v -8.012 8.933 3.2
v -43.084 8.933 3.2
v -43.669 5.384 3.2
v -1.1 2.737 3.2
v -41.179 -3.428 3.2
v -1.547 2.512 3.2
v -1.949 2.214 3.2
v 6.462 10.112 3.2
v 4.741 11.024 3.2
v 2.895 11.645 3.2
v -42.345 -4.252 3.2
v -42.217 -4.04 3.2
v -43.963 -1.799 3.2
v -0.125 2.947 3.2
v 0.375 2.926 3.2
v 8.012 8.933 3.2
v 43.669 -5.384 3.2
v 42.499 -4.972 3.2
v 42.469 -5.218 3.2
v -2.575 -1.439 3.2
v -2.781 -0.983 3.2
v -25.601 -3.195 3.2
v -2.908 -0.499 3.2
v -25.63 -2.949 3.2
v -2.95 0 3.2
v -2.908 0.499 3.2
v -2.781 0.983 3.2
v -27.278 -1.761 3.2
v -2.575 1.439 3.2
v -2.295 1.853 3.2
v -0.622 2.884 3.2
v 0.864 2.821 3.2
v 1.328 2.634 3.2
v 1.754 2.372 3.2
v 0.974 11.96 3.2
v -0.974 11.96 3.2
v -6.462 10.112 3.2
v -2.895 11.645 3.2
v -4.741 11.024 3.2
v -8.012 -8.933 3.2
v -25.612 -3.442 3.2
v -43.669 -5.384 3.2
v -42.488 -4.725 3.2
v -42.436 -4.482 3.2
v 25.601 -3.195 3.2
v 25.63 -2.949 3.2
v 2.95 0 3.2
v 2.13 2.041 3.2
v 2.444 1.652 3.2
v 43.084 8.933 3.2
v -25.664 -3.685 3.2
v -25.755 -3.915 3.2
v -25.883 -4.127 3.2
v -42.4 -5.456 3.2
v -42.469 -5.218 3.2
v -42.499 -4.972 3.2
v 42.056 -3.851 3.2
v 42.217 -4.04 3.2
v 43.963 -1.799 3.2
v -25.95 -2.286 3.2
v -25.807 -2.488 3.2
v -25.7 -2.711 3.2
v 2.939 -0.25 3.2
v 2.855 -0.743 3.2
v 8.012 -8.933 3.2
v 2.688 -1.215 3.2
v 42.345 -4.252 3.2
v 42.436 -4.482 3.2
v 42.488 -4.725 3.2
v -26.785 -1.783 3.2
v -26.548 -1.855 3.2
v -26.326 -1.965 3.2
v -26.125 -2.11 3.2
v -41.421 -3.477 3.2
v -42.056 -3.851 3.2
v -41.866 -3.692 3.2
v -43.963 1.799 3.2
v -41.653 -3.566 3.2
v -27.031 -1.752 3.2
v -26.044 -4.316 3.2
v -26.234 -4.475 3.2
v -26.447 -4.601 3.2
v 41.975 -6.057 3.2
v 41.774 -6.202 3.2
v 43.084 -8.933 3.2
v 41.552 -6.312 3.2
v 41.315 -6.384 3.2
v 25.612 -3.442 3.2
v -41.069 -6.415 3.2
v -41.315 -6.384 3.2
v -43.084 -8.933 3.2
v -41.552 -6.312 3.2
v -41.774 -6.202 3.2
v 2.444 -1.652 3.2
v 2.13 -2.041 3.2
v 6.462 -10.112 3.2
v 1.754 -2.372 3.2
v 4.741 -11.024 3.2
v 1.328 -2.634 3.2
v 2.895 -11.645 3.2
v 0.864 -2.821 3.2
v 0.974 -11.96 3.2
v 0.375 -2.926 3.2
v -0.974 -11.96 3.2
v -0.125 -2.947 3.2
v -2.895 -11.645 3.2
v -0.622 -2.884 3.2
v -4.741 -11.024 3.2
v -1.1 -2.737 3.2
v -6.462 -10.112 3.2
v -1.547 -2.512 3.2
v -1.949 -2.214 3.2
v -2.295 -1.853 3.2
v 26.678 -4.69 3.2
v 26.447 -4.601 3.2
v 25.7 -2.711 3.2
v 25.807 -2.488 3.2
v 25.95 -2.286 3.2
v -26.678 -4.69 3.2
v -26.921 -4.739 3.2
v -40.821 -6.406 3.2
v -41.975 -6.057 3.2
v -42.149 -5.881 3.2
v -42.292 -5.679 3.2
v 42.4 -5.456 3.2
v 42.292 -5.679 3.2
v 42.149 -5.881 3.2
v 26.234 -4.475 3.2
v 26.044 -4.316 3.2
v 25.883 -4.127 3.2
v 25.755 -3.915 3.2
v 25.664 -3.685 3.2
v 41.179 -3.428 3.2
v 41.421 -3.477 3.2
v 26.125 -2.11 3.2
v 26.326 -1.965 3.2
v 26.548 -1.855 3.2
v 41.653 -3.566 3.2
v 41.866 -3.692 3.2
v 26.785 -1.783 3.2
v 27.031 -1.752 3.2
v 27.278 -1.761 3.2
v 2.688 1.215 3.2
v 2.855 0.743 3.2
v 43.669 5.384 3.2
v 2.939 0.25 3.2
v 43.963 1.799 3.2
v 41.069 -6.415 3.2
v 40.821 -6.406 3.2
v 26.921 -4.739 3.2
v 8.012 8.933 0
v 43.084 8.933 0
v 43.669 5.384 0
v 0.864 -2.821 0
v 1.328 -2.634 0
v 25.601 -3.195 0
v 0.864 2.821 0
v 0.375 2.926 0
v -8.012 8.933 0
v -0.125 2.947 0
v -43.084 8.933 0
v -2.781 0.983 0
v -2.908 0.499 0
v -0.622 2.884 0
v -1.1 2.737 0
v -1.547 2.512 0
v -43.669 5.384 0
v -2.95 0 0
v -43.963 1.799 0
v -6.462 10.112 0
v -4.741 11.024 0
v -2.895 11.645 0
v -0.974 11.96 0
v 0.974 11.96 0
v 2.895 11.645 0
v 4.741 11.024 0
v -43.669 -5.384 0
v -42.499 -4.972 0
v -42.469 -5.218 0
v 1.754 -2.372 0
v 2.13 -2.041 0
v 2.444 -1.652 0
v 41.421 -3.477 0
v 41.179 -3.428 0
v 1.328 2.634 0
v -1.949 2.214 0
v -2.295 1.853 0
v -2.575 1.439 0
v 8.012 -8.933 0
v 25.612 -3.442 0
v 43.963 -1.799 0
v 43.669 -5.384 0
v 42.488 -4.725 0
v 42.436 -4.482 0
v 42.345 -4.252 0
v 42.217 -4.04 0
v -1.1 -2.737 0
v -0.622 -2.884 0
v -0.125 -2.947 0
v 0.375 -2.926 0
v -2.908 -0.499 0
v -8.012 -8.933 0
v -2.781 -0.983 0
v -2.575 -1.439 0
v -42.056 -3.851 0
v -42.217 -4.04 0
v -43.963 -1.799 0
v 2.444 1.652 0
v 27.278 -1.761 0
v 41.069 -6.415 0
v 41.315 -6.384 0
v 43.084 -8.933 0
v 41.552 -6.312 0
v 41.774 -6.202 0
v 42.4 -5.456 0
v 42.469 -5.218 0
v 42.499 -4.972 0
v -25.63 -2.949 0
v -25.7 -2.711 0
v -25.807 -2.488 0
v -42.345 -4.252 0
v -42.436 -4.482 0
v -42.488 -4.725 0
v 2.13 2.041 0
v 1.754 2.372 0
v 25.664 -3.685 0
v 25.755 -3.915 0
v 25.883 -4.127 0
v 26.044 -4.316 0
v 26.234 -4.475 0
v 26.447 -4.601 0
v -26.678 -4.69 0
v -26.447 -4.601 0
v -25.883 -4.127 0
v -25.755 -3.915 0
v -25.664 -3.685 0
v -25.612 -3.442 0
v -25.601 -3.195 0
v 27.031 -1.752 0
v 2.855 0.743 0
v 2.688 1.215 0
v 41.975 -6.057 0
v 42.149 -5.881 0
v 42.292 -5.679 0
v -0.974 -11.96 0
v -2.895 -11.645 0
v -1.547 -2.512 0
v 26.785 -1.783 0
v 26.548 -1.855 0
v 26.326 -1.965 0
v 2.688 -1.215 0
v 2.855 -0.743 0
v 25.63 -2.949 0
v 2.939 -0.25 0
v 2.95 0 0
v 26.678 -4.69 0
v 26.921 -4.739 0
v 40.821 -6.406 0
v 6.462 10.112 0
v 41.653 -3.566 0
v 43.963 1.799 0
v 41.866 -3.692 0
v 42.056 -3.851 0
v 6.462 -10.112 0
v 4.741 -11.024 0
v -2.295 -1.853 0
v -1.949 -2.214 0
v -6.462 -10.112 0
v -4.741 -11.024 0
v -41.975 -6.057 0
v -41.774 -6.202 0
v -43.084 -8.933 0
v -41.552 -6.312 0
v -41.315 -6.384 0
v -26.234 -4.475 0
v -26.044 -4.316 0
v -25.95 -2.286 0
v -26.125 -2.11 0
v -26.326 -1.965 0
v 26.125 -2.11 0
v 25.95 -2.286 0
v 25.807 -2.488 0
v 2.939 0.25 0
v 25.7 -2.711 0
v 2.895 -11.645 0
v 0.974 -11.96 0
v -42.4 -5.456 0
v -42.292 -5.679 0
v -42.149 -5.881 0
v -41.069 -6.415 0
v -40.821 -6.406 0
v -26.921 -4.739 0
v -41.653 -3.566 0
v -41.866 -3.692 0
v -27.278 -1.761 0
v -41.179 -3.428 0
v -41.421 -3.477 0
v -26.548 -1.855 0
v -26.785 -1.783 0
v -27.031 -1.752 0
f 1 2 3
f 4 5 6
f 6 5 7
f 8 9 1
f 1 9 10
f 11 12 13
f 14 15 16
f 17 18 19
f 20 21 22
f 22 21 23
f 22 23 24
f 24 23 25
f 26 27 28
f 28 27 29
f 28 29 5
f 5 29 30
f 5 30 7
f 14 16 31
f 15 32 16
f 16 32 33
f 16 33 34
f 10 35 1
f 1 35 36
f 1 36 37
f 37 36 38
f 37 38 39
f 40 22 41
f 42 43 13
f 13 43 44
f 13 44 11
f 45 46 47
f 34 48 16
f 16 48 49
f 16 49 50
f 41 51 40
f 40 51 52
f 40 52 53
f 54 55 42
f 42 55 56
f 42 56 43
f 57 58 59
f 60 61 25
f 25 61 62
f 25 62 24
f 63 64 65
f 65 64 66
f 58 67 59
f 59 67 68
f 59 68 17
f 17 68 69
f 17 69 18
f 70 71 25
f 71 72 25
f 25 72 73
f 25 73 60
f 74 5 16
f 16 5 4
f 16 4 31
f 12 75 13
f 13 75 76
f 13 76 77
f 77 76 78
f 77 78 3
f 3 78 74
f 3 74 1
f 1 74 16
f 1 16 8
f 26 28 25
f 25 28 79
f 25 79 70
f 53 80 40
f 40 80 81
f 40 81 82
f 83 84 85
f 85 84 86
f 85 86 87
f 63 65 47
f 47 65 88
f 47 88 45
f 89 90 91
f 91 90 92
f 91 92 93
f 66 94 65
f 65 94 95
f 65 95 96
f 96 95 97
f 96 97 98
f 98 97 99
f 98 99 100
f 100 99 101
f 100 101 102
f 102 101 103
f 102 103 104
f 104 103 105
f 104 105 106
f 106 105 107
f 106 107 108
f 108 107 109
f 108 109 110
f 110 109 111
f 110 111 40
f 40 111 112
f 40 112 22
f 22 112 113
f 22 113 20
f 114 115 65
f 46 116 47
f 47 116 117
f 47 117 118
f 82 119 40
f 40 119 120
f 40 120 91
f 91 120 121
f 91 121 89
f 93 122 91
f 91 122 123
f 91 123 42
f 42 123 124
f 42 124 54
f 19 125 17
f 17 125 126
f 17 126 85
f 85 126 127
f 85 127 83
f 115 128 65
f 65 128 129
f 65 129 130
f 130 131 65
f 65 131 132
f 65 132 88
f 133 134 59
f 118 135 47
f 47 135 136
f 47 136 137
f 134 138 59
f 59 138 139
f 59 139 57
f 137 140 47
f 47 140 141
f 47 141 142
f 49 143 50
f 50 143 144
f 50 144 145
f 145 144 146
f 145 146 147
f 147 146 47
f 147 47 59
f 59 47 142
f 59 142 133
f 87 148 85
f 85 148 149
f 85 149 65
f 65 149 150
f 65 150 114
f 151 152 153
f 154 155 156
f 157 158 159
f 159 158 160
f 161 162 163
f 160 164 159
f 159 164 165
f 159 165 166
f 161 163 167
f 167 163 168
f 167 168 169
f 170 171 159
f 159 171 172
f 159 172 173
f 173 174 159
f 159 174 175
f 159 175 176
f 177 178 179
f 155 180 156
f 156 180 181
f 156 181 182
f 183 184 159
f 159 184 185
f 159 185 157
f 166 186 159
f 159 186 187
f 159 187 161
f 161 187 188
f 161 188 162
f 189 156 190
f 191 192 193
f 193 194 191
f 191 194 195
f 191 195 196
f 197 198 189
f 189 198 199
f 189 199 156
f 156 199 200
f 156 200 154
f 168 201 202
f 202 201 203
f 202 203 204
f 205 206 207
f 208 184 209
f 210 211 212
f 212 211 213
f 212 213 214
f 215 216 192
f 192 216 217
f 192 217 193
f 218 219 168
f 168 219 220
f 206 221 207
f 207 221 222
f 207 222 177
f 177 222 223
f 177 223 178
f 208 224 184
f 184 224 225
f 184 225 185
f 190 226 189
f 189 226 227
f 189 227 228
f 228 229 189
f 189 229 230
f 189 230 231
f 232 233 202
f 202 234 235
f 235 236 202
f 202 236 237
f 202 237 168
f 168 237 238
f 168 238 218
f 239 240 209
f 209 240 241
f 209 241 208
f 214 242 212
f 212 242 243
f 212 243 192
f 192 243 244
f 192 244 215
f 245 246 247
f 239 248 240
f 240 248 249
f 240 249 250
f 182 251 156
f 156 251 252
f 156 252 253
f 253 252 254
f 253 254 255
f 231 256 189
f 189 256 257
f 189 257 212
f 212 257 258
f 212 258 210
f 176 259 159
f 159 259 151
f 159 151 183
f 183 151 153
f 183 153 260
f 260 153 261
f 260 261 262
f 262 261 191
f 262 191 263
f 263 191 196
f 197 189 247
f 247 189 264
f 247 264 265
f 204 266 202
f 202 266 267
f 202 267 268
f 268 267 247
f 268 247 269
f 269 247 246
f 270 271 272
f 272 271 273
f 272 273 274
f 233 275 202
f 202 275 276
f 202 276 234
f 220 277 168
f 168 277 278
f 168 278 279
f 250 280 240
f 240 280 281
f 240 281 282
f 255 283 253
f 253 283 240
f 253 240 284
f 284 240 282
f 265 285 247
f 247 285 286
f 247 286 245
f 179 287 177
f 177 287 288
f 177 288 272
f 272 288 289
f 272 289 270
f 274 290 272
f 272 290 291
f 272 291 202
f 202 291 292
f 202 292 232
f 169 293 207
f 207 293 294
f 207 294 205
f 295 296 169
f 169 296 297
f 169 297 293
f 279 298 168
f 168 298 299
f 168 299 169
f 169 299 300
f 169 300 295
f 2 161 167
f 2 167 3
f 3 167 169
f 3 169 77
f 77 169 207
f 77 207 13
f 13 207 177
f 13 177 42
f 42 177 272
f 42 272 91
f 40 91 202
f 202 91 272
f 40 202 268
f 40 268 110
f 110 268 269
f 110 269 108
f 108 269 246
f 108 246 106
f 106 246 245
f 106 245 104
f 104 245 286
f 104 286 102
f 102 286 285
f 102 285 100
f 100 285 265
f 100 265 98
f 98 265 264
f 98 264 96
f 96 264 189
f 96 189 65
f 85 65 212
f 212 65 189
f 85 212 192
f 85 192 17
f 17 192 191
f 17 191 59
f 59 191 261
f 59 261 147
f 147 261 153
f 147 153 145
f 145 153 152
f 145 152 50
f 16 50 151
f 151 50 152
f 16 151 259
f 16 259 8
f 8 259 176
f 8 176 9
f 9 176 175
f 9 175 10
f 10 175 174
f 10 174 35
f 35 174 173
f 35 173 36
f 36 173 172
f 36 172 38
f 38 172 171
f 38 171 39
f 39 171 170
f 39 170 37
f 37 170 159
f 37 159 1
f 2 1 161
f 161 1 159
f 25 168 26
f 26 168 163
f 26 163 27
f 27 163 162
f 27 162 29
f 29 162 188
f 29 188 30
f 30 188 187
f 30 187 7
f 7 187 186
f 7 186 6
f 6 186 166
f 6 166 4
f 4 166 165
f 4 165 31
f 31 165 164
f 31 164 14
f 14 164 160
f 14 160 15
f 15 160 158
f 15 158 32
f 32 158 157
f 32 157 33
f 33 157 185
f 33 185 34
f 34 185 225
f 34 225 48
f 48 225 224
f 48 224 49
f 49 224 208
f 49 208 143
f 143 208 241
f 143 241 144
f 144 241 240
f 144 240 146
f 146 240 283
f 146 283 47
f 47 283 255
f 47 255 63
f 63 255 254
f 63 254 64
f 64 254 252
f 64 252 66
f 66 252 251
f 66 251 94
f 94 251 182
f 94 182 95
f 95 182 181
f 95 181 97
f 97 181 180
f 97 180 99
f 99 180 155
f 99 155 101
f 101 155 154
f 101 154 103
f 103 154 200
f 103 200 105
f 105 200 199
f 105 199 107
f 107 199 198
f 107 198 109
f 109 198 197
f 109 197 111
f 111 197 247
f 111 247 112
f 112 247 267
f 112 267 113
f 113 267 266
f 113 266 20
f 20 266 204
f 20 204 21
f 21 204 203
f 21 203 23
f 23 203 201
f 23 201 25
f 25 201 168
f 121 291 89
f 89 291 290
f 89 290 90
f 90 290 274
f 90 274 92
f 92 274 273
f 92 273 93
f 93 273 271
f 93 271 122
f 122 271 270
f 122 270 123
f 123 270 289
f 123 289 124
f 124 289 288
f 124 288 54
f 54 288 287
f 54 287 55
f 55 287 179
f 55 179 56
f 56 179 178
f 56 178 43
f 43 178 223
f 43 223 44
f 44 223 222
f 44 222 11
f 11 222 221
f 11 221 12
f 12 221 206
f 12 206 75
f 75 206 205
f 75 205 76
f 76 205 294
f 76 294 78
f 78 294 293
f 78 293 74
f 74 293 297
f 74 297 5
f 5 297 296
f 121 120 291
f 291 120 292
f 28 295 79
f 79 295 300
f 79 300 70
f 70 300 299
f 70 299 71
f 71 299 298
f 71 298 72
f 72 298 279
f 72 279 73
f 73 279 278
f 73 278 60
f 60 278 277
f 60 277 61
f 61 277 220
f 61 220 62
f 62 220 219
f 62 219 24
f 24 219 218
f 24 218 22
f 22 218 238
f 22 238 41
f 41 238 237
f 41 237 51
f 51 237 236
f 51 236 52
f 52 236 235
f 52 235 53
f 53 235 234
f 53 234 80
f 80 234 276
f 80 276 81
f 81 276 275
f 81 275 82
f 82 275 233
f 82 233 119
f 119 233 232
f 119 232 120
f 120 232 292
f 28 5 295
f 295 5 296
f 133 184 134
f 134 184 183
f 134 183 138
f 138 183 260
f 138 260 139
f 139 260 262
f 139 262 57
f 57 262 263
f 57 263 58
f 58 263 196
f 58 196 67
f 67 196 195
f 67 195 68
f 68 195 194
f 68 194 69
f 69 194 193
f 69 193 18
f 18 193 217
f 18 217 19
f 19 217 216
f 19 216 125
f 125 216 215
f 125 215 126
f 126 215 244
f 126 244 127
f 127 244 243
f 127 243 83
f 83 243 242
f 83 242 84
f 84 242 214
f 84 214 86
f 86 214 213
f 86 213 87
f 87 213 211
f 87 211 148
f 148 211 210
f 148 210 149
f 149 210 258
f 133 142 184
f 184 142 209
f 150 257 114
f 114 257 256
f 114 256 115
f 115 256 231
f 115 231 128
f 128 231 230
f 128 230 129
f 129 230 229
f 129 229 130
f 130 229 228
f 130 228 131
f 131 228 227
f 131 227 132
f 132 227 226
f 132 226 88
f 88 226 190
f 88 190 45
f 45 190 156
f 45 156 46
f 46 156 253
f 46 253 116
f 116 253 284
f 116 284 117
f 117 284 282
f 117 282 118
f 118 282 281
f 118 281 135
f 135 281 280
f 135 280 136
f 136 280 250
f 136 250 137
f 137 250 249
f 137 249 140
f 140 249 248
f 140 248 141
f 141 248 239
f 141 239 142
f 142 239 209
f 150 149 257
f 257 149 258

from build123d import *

# Parameters (mm, degrees)
SKETCH_1_R      = 2.95
EXTRUDE_1_DEPTH = 3.2


with BuildPart() as part:
    # Эскиз1 → Бобышка-Вытянуть1 (new body)
    with BuildSketch(Plane.XY):
        with BuildLine():
            Line((-43.083575227, 8.933394968), (-8.012144179, 8.933394968))
            ThreePointArc((-8.012144179, 8.933394968), (0, 12), (8.012144179, 8.933394968))
            Line((8.012144179, 8.933394968), (43.083575227, 8.933394968))
            ThreePointArc((43.083575227, 8.933394968), (44, 0), (43.083575227, -8.933394968))
            Line((43.083575227, -8.933394968), (8.012144179, -8.933394968))
            ThreePointArc((8.012144179, -8.933394968), (0, -12), (-8.012144179, -8.933394968))
            Line((-8.012144179, -8.933394968), (-43.083575227, -8.933394968))
            ThreePointArc((-43.083575227, -8.933394968), (-44, 0), (-43.083575227, 8.933394968))
        make_face()
        Circle(SKETCH_1_R, mode=Mode.SUBTRACT)
        with BuildLine():
            Line((-41.178612038, -3.427717743), (-27.278217848, -1.760672051))
            ThreePointArc((-27.278217848, -1.760672051), (-25.61027786, -3.071387962), (-26.920993771, -4.739327949))
            Line((-26.920993771, -4.739327949), (-40.821387962, -6.406373641))
            ThreePointArc((-40.821387962, -6.406373641), (-42.489327949, -5.09565773), (-41.178612038, -3.427717743))
        make_face(mode=Mode.SUBTRACT)
        with BuildLine():
            Line((40.821387962, -6.406373641), (26.920993771, -4.739327949))
            ThreePointArc((26.920993771, -4.739327949), (25.61027786, -3.071387962), (27.278217848, -1.760672051))
            Line((27.278217848, -1.760672051), (41.178612038, -3.427717743))
            ThreePointArc((41.178612038, -3.427717743), (42.489327949, -5.09565773), (40.821387962, -6.406373641))
        make_face(mode=Mode.SUBTRACT)
    extrude(amount=EXTRUDE_1_DEPTH)


solid = part.part
